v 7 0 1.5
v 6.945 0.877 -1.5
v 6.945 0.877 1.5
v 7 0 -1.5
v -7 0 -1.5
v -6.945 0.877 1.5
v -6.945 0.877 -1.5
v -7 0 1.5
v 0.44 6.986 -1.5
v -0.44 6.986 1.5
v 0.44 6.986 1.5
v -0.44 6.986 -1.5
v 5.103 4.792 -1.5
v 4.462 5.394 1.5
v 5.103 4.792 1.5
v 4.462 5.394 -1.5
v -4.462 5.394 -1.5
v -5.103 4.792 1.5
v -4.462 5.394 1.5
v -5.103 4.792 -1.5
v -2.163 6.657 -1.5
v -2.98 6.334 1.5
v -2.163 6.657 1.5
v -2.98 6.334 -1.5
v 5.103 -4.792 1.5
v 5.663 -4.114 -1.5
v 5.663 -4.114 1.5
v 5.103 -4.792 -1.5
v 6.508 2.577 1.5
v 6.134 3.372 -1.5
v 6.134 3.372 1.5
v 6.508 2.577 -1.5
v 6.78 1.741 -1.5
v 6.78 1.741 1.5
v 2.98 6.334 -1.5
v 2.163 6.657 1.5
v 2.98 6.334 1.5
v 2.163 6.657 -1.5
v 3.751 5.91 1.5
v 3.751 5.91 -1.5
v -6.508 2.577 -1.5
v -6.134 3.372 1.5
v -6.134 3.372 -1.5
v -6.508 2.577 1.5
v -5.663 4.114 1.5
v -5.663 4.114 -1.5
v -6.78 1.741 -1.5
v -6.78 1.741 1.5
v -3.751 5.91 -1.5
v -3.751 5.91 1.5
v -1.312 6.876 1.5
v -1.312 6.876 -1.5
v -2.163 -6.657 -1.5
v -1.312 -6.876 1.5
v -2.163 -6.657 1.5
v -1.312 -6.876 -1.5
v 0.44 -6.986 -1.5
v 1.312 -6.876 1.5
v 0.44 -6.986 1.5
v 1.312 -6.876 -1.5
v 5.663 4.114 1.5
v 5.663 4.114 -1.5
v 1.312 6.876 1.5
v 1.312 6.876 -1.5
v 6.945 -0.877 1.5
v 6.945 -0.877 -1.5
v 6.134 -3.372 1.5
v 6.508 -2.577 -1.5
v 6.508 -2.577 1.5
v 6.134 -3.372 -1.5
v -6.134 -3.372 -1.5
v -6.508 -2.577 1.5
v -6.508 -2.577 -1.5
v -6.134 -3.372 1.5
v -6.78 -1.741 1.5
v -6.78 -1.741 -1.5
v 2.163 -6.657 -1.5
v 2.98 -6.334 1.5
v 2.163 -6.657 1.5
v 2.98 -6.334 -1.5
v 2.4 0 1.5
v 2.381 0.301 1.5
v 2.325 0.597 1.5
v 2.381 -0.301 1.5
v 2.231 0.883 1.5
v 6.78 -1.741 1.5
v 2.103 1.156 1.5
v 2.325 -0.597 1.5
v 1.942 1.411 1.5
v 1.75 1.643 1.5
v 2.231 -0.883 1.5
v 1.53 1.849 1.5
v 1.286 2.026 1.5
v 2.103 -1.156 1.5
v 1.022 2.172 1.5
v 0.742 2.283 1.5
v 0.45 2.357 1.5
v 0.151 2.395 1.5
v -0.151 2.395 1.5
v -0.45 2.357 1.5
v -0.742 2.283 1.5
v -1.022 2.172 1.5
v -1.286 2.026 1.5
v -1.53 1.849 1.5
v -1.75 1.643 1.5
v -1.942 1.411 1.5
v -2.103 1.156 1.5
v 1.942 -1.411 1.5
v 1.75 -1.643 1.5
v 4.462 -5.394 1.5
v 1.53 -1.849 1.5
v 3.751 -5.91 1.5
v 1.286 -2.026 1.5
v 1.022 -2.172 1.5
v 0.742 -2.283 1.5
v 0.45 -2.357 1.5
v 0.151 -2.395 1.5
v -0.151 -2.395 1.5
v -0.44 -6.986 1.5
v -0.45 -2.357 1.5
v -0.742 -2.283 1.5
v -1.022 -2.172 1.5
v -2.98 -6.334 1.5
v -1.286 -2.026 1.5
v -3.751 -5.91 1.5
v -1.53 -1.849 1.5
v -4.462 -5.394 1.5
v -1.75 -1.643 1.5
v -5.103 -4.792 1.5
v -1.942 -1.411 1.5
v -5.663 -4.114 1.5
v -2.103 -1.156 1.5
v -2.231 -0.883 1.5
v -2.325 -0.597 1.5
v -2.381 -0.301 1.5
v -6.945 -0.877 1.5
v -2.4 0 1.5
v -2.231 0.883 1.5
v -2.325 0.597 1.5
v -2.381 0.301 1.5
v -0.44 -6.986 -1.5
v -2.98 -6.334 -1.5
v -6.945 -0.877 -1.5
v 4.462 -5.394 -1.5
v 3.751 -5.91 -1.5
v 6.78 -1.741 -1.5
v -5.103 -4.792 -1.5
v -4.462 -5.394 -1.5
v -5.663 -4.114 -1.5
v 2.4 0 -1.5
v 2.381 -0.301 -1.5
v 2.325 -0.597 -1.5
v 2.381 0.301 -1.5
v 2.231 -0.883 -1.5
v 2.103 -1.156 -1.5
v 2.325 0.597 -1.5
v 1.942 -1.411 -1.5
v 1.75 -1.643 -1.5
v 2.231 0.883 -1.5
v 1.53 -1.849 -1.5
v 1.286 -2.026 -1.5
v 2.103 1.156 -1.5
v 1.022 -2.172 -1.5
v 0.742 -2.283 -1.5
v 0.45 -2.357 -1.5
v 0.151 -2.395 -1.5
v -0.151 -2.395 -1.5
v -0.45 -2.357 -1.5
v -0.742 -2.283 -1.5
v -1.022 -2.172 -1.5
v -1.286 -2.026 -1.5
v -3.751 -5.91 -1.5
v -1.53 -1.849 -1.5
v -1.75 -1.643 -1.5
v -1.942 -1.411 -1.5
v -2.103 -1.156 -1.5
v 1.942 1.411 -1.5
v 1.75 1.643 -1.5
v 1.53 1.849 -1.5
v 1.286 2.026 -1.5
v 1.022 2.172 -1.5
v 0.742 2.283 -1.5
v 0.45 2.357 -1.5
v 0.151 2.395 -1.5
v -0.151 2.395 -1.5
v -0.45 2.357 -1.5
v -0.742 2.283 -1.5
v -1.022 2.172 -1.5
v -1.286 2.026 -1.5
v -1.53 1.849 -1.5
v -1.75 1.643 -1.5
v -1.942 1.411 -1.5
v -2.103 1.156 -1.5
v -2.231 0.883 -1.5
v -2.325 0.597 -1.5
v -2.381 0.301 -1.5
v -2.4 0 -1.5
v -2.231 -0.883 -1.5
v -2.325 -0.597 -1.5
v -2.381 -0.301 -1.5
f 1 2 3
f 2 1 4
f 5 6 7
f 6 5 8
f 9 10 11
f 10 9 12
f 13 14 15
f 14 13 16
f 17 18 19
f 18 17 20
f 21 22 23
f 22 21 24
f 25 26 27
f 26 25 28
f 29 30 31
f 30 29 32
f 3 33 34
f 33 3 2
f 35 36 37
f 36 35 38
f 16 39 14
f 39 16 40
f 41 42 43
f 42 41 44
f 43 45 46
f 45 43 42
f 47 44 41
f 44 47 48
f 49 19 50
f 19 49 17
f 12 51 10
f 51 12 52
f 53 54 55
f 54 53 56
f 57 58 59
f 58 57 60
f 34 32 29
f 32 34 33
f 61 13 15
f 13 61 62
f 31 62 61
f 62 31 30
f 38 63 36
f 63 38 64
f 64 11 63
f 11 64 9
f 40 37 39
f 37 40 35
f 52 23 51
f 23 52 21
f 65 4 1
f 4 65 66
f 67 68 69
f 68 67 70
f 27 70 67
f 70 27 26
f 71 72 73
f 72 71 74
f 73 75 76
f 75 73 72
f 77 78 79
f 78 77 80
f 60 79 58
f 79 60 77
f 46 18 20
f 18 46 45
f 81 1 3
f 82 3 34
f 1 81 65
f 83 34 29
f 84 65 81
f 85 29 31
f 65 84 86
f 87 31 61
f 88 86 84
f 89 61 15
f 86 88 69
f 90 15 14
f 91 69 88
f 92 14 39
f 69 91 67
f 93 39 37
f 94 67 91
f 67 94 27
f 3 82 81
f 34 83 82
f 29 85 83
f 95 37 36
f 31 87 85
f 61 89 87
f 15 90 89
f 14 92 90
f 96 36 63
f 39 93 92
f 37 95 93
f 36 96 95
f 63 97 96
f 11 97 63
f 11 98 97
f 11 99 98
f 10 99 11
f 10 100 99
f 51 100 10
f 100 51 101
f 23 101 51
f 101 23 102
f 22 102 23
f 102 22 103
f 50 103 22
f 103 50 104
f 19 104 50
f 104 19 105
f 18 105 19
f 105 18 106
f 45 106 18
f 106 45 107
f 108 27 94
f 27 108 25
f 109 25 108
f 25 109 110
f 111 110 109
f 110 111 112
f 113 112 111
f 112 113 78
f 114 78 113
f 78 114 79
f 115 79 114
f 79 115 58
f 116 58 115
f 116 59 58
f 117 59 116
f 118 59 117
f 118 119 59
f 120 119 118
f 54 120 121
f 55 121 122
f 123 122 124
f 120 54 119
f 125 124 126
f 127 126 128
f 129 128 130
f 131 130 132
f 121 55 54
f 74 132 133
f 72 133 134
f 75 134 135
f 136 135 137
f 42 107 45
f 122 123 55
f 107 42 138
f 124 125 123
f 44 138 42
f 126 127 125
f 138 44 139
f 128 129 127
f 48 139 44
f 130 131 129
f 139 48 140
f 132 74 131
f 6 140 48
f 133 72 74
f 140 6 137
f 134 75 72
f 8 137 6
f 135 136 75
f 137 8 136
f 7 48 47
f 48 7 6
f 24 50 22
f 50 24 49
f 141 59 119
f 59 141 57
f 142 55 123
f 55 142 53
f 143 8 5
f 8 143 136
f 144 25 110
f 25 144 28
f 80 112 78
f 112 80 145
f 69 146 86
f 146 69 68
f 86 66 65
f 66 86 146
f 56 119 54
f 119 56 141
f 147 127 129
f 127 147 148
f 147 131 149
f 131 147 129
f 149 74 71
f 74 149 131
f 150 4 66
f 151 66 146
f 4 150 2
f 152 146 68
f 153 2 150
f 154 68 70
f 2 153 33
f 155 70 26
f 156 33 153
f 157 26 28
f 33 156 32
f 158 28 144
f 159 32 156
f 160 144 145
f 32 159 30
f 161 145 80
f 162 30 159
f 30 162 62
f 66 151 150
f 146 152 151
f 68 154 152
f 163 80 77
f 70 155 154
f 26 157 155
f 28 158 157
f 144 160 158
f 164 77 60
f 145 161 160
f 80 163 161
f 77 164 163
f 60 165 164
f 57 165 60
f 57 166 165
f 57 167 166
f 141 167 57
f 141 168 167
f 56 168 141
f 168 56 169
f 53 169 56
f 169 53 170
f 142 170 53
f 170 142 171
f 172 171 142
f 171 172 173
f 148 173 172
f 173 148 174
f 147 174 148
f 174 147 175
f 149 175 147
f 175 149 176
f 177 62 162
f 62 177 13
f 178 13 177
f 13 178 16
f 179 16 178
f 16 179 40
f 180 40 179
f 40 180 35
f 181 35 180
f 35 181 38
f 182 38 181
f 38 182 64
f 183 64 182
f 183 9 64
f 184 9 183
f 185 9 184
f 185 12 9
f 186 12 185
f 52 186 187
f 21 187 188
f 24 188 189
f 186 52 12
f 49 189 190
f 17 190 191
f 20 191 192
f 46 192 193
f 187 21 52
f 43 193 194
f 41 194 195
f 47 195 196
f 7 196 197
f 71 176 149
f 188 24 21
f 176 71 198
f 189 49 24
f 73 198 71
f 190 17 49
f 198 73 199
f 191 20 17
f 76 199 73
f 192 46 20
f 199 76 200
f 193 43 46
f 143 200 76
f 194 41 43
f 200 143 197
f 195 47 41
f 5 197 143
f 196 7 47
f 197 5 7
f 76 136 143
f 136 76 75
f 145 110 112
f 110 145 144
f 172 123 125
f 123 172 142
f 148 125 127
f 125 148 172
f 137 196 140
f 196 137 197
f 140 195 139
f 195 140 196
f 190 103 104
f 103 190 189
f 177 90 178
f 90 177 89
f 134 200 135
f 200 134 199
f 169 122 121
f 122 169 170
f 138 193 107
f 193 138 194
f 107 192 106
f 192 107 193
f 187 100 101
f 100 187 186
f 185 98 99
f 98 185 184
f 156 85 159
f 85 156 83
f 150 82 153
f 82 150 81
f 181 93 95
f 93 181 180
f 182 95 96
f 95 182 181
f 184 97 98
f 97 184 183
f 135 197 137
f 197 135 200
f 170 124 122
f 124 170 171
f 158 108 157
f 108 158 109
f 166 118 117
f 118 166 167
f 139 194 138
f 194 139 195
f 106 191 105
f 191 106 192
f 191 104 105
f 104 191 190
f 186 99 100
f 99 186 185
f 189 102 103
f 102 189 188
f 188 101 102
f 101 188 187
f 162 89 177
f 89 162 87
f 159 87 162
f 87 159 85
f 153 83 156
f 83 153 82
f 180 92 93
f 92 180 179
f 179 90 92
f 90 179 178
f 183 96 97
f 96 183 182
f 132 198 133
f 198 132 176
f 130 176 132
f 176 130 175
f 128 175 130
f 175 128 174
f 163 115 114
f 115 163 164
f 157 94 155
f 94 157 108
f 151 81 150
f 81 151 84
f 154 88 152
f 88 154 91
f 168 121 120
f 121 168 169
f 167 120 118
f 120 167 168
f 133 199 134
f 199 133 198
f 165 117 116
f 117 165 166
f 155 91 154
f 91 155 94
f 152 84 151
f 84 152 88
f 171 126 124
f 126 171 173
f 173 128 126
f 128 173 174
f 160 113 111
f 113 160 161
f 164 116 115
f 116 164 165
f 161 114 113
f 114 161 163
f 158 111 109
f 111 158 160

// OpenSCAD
$fn = 50;


difference() {
	union() {
		translate(v = [0, 0, -1.5000000000]) {
			rotate(a = [0, 0, 0]) {
				cylinder(h = 3, r = 7.0000000000);
			}
		}
		translate(v = [0, 0, -1.5000000000]) {
			rotate(a = [0, 0, 0]) {
				cylinder(h = 3, r = 3.0000000000);
			}
		}
	}
	union() {
		translate(v = [0, 0, -125.0000000000]) {
			rotate(a = [0, 0, 0]) {
				cylinder(h = 250, r = 1.5000000000);
			}
		}
		#translate(v = [0, 0, 1.5000000000]) {
			rotate(a = [0, 180, 0]) {
				cylinder(h = 3, r1 = 2.4000000000, r2 = 2.4000000000);
			}
		}
		#translate(v = [0, 0, 1.5000000000]) {
			rotate(a = [0, 180, 0]) {
				cylinder(h = 3, r = 1.5000000000);
			}
		}
	}
}
